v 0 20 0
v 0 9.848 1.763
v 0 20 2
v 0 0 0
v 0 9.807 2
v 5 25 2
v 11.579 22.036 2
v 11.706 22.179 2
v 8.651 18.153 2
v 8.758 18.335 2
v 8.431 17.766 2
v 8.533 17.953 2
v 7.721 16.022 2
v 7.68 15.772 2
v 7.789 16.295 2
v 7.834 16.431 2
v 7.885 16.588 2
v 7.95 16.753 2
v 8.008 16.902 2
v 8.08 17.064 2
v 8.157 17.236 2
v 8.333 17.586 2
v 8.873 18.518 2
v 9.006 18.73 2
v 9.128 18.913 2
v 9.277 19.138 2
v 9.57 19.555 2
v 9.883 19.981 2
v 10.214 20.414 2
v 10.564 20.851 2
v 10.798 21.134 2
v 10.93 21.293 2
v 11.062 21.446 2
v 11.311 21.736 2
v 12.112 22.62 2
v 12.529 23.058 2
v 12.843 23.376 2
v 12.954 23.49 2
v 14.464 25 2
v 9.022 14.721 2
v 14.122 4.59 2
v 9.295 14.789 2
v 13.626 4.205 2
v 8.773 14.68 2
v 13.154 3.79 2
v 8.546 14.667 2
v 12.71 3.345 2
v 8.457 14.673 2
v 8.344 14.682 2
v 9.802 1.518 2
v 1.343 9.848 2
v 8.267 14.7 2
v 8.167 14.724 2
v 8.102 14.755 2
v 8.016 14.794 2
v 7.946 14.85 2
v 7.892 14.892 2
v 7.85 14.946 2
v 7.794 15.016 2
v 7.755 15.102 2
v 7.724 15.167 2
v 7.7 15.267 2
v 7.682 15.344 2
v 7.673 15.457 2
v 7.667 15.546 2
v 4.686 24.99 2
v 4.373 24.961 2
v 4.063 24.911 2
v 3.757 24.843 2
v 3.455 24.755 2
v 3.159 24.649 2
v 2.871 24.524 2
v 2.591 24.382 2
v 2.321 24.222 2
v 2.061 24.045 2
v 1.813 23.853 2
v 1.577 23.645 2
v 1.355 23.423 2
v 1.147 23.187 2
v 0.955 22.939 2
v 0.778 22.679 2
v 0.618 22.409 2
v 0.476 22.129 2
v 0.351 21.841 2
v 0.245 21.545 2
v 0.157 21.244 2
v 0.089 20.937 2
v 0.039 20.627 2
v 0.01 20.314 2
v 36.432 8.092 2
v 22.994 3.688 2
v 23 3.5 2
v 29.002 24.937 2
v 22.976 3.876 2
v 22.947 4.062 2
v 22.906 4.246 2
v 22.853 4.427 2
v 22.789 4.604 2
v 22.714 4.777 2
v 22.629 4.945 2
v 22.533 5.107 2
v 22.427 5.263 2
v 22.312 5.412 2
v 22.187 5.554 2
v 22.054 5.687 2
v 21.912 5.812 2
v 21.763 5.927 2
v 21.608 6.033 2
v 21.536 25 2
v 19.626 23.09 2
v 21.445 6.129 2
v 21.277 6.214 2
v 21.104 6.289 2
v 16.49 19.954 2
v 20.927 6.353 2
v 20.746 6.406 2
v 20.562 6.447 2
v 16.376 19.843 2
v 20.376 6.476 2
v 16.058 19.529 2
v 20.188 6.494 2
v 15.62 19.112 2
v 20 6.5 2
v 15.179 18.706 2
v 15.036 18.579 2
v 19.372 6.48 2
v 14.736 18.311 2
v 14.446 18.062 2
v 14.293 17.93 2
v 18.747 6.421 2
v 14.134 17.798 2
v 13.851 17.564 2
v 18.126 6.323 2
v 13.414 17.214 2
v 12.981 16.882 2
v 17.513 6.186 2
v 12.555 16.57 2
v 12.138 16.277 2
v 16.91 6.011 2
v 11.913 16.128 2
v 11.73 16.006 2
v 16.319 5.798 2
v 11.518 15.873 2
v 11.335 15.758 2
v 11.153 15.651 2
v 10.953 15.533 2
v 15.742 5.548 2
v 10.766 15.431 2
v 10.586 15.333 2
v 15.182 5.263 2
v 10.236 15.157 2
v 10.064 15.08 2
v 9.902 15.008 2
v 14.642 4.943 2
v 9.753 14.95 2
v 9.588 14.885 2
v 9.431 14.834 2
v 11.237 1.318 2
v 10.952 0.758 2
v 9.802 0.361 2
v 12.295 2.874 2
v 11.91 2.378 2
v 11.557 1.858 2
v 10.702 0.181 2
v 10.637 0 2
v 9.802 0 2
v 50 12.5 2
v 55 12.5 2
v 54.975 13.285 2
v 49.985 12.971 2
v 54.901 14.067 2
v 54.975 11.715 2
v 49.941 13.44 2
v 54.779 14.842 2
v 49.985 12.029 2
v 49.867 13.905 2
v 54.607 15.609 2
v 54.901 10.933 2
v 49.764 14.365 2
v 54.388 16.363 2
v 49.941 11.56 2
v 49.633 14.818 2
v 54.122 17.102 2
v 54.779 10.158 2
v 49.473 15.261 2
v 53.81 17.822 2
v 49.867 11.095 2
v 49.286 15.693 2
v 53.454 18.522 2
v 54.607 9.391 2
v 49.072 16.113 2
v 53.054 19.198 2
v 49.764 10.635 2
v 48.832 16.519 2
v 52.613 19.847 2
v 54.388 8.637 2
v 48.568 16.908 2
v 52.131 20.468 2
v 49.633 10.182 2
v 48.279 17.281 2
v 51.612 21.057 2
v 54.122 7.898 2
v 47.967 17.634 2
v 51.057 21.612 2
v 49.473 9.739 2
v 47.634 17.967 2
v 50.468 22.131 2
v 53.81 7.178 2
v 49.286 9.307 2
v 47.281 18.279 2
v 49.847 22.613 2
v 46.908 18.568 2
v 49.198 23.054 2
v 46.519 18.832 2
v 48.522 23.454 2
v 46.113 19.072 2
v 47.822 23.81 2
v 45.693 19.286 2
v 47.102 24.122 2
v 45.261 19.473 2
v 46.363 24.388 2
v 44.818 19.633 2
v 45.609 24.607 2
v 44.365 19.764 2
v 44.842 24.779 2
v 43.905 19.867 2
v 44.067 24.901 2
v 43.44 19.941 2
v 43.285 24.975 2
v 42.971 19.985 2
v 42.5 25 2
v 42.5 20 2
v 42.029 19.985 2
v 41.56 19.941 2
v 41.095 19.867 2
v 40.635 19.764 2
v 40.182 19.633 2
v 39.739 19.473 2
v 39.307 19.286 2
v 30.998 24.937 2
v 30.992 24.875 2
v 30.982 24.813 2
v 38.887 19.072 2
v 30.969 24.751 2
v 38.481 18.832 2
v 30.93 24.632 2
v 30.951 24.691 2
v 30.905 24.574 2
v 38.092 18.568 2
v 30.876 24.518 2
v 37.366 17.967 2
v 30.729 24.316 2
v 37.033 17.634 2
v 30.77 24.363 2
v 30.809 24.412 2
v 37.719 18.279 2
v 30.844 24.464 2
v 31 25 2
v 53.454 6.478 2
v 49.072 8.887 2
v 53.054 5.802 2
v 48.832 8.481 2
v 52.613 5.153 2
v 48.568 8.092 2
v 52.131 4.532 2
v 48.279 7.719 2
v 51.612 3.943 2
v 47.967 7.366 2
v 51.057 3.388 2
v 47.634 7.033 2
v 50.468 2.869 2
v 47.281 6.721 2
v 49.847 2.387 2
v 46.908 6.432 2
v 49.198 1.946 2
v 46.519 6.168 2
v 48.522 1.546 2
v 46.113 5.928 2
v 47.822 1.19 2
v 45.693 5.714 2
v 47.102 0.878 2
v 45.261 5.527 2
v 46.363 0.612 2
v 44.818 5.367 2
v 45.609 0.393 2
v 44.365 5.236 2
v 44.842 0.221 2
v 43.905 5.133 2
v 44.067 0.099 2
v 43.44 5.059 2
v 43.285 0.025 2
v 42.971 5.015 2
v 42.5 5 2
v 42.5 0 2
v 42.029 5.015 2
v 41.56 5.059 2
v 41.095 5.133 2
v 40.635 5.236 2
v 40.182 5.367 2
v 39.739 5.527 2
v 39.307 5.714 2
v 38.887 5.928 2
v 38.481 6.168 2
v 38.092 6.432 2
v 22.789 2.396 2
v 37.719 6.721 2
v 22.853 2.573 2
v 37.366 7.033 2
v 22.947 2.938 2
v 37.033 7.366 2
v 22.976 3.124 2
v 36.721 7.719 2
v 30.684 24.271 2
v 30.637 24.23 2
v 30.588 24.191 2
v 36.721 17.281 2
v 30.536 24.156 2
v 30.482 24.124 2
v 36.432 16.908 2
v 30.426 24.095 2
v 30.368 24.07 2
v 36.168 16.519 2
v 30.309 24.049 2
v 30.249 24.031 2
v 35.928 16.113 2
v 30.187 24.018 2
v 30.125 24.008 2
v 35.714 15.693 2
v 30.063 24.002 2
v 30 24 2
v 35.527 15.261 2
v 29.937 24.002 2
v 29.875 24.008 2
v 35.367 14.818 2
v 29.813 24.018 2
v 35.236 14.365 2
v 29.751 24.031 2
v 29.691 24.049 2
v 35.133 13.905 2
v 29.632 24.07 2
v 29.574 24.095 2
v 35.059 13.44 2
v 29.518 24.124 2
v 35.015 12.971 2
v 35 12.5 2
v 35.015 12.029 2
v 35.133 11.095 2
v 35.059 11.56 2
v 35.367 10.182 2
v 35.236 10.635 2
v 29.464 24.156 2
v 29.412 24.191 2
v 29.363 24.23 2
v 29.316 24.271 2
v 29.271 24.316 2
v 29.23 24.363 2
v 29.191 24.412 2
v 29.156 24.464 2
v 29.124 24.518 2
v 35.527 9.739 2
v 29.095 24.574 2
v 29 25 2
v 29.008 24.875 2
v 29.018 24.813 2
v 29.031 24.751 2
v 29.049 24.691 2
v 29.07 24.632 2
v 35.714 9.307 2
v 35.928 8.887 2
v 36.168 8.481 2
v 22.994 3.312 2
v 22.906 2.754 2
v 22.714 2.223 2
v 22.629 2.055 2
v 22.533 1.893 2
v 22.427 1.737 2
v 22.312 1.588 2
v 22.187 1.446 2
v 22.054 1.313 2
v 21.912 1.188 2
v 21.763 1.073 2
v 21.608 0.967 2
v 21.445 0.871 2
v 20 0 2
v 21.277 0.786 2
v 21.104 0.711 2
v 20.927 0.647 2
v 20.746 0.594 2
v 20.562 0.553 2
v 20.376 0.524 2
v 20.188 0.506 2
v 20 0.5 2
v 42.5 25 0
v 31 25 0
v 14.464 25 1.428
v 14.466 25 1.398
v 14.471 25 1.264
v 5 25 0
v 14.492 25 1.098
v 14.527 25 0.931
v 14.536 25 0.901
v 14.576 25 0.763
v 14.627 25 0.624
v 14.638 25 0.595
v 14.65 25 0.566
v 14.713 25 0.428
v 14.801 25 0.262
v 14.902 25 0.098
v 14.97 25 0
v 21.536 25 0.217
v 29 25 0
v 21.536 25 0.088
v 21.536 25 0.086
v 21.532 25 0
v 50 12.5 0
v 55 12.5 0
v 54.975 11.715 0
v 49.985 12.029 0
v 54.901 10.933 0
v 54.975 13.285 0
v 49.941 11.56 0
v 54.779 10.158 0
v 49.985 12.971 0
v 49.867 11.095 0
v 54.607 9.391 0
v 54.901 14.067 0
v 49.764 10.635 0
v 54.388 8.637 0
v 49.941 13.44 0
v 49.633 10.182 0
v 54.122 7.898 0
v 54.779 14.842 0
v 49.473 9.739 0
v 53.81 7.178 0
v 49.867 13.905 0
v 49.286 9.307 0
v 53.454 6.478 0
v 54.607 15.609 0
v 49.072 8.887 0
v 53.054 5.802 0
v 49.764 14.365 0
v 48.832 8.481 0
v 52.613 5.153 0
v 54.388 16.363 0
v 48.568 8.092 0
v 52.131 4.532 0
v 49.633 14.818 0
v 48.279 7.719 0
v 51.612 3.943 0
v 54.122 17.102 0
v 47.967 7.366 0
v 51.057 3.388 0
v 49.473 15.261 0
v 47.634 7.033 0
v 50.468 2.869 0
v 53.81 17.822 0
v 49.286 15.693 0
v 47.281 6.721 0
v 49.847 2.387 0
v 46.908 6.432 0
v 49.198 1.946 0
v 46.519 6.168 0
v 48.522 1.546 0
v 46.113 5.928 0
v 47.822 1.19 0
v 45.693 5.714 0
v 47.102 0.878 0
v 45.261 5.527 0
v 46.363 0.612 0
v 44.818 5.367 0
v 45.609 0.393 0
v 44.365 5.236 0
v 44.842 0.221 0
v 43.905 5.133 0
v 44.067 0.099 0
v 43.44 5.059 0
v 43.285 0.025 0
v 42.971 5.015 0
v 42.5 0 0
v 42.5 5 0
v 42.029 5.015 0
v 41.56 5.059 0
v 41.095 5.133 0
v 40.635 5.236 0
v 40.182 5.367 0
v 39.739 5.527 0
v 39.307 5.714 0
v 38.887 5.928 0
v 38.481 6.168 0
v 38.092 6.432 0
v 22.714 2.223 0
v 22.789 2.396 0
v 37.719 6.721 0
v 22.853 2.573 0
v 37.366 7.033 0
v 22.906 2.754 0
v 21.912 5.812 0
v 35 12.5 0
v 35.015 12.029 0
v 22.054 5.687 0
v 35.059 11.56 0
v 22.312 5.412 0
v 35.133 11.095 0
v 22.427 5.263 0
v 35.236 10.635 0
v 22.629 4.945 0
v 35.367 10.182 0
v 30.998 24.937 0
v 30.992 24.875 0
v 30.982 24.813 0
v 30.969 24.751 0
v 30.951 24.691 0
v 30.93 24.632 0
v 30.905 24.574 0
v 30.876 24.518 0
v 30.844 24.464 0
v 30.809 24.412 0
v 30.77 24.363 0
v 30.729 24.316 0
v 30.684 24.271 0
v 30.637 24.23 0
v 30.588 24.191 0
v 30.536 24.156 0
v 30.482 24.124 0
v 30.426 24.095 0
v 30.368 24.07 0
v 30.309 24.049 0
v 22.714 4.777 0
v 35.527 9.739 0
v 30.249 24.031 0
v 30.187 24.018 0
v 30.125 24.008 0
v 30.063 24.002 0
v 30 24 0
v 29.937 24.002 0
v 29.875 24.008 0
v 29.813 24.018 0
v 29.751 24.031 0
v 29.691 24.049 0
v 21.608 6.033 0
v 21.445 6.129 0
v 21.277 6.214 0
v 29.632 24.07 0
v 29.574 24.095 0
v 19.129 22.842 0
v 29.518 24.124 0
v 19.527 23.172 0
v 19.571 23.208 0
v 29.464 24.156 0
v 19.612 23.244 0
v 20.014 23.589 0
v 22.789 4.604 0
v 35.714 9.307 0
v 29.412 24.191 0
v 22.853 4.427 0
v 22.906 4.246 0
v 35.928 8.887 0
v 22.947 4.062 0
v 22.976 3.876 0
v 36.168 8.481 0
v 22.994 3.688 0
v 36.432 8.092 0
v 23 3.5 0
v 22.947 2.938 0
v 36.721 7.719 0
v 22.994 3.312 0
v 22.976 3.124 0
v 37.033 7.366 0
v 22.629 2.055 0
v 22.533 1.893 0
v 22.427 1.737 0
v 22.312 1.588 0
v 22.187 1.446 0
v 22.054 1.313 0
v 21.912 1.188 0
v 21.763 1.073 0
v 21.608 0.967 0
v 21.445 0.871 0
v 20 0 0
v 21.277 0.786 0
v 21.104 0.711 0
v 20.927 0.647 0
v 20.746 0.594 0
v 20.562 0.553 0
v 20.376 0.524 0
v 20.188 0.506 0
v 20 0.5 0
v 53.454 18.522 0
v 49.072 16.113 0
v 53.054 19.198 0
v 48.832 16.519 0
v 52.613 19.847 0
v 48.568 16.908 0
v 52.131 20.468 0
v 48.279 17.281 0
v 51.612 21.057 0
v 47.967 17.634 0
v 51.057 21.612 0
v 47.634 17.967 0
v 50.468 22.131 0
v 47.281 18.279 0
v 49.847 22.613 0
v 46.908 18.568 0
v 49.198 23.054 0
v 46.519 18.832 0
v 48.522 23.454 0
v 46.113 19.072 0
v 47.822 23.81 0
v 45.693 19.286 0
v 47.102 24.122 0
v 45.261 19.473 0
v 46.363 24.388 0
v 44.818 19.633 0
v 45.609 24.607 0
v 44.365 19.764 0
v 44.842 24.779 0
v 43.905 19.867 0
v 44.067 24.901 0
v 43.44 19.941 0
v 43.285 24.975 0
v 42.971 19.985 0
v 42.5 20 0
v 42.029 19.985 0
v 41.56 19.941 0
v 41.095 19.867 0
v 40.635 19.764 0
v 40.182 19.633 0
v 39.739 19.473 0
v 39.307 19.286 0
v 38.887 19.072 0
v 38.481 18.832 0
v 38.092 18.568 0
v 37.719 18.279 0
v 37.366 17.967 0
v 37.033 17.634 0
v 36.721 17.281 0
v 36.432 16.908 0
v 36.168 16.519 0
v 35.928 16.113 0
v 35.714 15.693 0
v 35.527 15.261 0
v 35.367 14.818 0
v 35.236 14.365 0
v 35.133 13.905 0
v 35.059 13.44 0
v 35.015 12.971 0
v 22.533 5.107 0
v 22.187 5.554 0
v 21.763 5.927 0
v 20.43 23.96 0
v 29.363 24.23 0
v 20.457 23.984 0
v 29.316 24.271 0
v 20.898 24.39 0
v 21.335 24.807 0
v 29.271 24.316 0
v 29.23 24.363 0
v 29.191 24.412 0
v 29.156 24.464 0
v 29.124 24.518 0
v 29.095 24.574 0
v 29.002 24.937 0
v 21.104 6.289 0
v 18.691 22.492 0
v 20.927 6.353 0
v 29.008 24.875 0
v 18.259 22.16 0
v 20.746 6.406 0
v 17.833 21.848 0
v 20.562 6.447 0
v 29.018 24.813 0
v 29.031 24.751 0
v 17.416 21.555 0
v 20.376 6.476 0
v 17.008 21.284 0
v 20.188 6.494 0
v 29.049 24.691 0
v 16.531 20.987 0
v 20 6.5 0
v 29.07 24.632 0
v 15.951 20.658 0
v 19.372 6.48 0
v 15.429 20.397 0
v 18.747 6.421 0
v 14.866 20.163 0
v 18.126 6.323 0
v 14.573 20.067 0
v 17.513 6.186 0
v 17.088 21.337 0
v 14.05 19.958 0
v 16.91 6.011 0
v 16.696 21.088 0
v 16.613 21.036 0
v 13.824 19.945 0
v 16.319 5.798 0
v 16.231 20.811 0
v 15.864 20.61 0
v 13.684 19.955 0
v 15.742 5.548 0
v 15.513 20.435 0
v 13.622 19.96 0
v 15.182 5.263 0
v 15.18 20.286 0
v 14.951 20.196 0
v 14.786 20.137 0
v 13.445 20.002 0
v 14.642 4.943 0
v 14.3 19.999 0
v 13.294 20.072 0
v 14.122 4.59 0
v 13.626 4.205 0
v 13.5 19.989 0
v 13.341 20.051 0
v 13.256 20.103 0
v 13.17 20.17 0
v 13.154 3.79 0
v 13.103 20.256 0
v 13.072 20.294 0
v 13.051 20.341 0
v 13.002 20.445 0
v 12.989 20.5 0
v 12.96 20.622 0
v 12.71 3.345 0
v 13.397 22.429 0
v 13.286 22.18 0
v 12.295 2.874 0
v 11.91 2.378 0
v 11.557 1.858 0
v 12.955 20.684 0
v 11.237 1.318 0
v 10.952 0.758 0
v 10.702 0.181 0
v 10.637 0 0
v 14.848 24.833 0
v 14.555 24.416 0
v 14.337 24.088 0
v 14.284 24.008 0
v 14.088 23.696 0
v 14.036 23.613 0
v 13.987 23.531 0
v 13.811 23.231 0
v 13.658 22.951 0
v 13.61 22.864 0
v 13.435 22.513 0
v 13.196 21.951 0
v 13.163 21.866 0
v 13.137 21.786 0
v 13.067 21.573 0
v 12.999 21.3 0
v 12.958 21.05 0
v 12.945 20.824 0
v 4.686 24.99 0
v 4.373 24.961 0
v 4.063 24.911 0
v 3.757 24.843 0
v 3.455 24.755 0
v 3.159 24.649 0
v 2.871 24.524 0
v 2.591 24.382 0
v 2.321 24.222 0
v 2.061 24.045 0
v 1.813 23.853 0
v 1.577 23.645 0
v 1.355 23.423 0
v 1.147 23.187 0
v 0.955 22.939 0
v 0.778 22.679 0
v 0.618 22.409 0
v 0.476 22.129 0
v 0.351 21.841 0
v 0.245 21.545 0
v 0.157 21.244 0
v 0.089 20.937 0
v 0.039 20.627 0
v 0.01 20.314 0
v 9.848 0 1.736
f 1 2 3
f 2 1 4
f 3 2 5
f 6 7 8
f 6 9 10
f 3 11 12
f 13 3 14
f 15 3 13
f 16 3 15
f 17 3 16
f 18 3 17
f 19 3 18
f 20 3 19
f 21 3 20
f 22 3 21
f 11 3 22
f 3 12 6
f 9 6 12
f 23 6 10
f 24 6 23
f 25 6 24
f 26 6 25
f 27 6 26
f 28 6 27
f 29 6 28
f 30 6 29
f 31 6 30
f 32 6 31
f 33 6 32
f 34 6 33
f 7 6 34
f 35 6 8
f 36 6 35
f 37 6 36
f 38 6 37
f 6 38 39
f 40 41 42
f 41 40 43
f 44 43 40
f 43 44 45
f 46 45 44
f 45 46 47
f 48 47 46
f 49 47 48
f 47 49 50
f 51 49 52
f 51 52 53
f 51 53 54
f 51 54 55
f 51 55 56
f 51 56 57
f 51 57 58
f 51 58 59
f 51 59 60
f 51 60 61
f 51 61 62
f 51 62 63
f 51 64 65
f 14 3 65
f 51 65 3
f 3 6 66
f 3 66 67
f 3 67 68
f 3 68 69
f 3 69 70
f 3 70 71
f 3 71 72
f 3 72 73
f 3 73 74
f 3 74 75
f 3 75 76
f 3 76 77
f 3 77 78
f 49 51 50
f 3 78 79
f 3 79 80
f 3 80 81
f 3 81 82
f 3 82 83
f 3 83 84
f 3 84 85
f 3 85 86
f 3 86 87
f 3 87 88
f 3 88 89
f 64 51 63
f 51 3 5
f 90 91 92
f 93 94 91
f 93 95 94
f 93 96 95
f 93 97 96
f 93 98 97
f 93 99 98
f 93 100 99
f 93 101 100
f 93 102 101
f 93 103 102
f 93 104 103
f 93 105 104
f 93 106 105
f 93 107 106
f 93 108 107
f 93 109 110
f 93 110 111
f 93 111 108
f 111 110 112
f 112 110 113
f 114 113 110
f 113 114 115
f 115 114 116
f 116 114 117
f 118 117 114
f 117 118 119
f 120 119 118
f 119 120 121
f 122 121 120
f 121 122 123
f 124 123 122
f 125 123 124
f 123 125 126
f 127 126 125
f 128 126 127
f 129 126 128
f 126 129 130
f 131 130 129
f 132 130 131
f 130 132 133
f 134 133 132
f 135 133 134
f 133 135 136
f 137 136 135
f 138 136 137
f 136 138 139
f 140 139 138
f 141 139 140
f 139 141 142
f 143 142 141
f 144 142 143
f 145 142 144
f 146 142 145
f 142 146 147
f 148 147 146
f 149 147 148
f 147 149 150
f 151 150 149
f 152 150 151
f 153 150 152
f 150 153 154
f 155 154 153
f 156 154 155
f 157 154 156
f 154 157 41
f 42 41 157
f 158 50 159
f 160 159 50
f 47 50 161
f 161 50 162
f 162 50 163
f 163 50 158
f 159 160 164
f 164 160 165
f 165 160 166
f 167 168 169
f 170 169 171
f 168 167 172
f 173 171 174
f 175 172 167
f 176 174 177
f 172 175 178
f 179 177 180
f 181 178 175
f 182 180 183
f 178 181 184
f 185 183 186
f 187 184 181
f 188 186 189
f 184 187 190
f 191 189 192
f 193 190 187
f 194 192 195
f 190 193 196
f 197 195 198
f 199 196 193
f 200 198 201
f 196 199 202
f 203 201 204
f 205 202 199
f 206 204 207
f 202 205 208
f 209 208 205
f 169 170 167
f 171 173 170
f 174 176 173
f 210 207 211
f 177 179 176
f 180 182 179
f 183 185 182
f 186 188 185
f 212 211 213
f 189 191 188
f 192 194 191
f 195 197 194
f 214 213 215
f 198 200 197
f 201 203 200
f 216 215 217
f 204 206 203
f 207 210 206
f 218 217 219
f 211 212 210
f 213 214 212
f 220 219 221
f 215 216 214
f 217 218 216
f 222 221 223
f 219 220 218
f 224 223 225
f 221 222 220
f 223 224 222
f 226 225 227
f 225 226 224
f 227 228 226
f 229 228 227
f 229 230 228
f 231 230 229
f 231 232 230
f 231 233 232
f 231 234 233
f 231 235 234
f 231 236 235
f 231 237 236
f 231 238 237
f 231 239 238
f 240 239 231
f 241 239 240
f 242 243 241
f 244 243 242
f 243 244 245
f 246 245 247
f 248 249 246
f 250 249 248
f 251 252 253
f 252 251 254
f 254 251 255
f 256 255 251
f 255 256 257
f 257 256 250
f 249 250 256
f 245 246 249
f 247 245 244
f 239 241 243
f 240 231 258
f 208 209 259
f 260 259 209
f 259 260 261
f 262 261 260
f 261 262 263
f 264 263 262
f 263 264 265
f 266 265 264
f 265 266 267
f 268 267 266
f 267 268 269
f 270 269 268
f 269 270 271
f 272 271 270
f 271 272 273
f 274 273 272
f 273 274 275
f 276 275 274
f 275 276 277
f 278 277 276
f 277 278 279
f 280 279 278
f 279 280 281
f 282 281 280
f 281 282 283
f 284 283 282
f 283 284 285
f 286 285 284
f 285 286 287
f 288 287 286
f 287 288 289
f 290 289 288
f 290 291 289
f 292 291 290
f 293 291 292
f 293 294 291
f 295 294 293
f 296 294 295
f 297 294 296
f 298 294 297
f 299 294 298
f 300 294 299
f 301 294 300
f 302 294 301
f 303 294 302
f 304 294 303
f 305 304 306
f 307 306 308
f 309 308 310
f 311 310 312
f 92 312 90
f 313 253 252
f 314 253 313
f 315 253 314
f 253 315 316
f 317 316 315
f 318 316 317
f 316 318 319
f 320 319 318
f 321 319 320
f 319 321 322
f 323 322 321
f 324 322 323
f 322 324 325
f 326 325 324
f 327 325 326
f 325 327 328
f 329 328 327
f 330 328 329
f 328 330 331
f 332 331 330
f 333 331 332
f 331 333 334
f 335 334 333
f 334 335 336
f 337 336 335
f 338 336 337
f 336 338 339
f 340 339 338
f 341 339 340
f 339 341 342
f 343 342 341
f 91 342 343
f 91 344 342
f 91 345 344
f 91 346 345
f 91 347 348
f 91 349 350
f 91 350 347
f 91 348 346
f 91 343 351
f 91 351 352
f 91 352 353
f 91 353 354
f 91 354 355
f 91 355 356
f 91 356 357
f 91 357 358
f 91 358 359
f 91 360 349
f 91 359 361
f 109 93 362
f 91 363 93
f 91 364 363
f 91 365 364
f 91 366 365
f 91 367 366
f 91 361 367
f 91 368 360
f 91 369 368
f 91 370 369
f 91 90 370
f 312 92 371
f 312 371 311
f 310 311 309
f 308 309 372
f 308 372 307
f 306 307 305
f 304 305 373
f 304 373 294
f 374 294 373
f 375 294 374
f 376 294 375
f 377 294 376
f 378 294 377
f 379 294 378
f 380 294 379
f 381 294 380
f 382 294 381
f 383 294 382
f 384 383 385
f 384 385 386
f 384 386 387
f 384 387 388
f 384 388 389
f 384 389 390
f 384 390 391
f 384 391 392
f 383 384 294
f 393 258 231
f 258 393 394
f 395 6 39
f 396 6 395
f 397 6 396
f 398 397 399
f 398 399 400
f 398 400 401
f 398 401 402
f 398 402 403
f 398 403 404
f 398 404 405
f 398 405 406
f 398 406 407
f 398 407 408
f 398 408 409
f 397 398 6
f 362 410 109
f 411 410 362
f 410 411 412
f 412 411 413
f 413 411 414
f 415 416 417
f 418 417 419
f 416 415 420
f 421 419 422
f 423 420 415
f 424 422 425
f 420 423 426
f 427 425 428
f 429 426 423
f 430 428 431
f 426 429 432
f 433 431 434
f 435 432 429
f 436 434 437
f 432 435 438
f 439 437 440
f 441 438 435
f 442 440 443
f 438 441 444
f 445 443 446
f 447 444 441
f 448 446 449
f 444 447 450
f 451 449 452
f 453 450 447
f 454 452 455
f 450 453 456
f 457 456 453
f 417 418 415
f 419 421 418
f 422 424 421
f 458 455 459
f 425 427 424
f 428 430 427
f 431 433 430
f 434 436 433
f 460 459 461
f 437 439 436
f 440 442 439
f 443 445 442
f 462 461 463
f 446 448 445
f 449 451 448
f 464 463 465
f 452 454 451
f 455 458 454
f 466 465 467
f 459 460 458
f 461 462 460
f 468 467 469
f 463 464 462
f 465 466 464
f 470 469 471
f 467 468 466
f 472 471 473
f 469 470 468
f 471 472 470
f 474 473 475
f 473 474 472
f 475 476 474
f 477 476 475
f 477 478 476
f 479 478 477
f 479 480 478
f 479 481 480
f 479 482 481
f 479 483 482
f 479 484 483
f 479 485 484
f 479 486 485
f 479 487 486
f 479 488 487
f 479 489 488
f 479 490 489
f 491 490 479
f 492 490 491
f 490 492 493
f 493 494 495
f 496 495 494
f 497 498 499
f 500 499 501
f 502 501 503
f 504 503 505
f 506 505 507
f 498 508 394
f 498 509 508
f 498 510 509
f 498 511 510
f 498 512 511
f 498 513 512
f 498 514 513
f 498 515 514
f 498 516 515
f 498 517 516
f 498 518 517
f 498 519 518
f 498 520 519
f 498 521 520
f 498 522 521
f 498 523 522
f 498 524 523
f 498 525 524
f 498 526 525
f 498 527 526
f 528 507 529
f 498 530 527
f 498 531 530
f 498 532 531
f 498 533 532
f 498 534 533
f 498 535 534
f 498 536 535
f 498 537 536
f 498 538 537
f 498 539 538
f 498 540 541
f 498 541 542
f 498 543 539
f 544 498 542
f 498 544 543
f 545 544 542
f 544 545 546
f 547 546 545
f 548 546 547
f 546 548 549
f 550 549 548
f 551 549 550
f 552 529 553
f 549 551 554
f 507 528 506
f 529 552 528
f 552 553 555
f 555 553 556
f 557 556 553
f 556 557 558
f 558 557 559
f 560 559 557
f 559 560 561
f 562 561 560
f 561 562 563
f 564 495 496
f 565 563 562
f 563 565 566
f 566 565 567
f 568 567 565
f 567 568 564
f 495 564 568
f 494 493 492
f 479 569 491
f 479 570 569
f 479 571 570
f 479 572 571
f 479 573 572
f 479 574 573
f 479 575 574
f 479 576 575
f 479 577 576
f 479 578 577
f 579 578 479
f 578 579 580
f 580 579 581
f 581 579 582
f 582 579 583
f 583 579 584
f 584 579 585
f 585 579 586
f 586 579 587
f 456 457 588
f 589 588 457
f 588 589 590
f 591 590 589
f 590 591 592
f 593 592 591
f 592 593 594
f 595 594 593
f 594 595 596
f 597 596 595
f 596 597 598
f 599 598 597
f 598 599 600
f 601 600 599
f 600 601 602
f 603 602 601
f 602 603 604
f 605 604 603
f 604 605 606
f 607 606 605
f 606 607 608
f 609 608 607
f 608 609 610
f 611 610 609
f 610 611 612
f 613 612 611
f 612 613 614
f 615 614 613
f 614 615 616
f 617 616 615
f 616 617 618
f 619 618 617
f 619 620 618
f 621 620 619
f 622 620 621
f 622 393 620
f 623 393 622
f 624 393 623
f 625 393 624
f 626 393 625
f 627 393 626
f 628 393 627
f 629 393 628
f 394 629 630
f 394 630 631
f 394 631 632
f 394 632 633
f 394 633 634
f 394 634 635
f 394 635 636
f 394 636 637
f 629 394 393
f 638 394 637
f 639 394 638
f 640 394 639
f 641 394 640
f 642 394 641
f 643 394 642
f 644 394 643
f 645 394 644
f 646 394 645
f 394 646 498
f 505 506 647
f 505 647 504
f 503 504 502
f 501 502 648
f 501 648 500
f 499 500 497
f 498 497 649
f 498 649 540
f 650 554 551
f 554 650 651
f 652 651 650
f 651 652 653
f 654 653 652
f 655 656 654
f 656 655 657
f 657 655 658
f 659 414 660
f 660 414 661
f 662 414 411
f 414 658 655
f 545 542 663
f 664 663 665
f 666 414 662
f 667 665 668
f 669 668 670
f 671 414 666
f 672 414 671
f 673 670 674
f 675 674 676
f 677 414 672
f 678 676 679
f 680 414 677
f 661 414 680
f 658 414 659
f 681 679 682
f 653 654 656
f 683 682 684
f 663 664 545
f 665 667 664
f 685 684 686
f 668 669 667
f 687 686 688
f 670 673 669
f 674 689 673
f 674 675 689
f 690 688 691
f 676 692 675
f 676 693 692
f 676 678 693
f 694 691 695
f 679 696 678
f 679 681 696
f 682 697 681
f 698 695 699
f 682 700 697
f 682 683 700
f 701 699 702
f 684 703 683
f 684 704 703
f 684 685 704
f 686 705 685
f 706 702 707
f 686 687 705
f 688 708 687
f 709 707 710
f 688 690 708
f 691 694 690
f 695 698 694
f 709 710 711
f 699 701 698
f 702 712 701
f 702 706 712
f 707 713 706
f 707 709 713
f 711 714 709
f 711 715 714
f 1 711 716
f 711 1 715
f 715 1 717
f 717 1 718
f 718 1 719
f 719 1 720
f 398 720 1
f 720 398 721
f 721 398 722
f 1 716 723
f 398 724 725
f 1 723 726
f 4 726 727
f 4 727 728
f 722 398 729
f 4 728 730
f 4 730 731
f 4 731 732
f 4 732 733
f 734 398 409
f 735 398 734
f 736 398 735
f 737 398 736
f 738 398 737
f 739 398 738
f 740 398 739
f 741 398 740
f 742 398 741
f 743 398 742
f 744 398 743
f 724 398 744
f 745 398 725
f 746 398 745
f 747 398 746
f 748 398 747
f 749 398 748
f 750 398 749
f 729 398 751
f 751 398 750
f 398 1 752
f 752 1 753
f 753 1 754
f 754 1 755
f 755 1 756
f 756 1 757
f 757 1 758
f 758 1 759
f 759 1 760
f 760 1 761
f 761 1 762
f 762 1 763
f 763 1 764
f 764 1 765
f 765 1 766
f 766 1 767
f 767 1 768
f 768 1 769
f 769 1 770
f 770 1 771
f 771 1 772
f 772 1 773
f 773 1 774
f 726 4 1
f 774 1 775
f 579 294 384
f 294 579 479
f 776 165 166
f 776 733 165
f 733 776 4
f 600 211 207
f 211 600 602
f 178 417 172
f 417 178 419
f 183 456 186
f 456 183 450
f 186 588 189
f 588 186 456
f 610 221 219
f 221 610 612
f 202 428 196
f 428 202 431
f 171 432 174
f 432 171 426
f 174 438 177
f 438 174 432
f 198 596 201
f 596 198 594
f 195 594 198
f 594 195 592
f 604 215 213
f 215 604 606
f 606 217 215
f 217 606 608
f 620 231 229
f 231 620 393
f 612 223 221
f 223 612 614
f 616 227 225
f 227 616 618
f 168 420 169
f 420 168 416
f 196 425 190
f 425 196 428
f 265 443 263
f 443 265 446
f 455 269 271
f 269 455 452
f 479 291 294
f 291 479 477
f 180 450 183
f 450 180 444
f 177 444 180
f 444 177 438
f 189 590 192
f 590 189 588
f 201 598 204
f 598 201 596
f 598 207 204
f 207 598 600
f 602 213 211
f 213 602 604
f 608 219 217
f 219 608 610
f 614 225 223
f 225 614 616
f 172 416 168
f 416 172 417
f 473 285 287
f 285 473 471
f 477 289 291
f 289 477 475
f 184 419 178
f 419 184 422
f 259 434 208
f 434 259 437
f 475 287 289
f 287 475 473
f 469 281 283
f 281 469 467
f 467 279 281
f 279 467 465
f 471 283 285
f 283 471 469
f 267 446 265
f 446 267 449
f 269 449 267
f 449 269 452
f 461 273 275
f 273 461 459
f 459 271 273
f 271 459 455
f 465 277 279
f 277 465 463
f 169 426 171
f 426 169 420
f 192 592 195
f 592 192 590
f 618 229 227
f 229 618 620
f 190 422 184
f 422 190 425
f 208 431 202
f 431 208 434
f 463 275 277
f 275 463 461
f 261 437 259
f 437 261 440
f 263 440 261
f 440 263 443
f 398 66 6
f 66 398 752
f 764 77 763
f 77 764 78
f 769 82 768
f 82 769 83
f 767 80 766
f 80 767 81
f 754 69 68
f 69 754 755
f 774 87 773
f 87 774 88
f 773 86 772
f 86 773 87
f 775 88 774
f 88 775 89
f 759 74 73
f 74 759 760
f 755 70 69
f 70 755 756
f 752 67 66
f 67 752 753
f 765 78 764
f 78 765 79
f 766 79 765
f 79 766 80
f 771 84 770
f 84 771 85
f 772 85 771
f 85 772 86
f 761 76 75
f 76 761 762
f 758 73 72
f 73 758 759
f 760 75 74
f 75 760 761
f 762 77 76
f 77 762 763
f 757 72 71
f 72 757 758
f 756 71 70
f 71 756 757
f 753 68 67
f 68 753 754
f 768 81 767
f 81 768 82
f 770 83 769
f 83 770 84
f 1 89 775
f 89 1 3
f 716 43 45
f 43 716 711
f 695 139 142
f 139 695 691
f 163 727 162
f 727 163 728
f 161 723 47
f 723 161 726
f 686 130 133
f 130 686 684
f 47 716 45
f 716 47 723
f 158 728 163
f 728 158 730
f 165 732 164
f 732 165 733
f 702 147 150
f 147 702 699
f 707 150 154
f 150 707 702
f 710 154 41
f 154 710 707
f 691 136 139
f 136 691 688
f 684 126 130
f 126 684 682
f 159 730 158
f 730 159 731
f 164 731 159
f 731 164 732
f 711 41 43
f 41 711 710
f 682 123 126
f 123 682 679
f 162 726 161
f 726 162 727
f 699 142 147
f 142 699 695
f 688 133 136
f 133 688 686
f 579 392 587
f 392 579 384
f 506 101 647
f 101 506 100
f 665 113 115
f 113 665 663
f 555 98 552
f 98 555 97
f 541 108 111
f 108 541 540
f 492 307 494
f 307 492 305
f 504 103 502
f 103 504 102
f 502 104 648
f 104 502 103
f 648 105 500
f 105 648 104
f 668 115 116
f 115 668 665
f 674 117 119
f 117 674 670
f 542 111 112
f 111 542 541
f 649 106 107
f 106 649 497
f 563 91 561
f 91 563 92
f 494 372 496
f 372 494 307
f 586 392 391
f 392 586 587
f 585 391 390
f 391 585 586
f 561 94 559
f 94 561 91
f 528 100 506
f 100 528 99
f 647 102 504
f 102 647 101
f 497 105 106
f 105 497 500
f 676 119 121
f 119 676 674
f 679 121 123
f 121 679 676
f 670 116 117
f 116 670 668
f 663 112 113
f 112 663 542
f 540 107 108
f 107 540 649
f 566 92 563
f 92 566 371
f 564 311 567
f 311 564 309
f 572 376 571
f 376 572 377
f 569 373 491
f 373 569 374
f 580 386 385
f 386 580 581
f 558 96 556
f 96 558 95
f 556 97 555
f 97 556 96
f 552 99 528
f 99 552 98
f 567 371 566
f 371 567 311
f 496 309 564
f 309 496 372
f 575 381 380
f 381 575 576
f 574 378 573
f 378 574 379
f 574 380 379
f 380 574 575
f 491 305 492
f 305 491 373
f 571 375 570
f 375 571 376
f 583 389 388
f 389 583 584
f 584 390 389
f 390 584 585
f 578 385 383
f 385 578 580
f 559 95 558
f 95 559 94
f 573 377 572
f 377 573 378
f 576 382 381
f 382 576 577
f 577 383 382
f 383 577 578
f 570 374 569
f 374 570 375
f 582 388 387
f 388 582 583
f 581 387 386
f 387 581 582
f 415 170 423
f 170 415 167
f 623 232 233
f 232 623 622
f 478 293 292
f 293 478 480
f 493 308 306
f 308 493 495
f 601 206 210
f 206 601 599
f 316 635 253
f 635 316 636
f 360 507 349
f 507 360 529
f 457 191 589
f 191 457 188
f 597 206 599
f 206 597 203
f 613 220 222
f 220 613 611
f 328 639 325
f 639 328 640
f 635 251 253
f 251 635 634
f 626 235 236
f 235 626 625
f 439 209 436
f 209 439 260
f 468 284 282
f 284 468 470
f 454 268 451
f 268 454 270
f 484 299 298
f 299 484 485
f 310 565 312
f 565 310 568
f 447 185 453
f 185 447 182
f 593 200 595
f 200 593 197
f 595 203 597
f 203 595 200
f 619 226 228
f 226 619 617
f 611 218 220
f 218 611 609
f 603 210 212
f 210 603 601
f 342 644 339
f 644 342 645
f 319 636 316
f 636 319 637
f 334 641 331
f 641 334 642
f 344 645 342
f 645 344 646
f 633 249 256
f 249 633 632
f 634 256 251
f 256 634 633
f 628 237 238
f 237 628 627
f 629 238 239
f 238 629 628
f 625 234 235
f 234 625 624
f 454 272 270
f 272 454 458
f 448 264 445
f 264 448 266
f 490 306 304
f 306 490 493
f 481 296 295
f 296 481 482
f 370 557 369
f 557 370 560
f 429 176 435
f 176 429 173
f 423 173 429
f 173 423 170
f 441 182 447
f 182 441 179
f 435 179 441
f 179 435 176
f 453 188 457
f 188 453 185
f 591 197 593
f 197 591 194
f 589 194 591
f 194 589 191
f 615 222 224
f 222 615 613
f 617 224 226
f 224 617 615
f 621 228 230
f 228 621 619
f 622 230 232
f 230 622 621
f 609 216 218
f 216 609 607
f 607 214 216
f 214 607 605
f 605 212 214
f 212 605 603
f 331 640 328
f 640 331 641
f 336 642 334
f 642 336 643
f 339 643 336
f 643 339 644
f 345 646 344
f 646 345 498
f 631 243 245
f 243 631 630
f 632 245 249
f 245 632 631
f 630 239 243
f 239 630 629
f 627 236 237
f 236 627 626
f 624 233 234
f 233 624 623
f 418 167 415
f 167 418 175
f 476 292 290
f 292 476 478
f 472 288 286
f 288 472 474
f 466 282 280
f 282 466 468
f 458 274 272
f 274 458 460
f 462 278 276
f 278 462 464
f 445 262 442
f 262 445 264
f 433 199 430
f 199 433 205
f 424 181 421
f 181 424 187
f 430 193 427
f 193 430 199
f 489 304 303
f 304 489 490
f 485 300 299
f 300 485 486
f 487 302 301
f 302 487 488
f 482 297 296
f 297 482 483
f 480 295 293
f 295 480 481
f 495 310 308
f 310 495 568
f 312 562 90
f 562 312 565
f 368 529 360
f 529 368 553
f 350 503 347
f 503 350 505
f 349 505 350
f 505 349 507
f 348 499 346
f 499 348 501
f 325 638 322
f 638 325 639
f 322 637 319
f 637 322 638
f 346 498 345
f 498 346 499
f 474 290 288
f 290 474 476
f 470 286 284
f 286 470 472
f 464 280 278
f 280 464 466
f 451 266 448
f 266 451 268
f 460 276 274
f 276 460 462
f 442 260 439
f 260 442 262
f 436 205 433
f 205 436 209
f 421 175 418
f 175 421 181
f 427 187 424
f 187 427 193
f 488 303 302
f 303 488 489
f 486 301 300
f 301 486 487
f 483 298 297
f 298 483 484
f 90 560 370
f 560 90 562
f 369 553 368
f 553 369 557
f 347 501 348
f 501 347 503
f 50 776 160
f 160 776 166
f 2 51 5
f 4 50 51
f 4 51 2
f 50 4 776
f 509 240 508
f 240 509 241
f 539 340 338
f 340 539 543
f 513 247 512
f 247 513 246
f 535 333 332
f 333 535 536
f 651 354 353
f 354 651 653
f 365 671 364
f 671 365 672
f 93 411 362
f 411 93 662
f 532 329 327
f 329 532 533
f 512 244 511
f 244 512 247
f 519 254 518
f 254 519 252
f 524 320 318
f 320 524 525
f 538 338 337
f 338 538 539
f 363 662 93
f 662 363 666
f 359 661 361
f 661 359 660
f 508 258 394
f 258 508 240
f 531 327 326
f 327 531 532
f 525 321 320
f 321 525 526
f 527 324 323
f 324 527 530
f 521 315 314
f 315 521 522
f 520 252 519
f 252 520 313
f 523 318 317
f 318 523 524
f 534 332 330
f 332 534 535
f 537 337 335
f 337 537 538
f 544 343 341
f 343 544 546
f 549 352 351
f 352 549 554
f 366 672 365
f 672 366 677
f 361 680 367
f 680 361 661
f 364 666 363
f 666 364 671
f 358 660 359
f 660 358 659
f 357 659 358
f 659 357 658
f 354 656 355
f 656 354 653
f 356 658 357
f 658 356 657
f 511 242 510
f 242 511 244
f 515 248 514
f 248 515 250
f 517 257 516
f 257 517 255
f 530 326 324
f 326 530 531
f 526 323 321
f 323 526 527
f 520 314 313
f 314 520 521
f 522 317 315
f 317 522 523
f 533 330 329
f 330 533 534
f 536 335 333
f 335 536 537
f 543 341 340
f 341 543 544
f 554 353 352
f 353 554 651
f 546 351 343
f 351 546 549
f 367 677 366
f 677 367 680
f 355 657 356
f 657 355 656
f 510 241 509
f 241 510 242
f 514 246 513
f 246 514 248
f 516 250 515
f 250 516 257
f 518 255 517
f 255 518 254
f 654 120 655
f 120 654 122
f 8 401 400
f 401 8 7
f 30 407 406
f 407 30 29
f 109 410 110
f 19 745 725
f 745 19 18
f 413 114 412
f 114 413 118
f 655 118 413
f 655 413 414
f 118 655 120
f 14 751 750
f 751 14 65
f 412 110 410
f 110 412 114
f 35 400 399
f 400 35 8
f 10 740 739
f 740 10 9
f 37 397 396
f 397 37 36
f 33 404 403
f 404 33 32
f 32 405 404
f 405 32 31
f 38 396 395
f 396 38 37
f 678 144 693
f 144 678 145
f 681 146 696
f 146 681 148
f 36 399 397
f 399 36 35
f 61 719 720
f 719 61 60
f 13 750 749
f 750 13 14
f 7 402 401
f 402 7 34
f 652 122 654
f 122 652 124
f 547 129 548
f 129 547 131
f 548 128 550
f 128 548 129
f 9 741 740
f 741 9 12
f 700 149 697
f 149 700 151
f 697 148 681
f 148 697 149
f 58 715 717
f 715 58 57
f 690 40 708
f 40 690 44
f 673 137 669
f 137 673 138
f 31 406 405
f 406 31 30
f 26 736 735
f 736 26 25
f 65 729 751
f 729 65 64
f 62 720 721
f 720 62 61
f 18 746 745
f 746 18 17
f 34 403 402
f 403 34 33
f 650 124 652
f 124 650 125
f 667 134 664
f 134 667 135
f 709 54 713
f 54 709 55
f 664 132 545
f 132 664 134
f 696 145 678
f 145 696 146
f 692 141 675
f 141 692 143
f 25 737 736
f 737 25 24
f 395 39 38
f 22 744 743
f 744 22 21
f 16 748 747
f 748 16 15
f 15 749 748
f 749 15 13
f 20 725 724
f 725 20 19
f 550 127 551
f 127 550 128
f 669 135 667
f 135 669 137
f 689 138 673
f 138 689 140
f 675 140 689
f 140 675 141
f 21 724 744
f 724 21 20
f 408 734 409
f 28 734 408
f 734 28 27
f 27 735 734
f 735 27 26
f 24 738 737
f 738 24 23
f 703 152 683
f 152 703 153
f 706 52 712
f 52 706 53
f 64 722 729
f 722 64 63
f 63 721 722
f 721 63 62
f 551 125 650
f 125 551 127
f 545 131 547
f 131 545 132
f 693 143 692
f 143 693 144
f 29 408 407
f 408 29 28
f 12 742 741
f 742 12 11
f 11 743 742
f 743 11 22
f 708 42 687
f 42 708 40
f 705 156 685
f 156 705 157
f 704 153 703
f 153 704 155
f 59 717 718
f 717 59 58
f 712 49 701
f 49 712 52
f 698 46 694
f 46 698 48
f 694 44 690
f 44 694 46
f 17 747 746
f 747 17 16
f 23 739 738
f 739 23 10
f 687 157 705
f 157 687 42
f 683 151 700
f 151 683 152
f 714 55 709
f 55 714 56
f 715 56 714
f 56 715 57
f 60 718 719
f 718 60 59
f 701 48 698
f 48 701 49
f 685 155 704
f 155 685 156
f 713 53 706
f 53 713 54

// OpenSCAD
fn=100;

module rawBody() {
	cube([42.5,25,2]);
	translate([42.5,12.5,0]) cylinder(d=25, h=2, $fn=fn);
	}


module fullBody() {
	difference() {
		rawBody();
		// main hole
		translate([42.5,12.5,0]) cylinder(d=15, h=3, $fn=fn);	
		// rounded edge
		translate([-5,20,0]) difference() {
			cube([10,10,3]);
			translate([10,0,0]) cylinder(d=10, h=3, $fn=fn);
		}
		// box opener
		translate([]) rotate([10,-10,0]) translate([-5,0,0])cube([20,10,5]);
		
		//wire stripper and bender
		translate([30,25,0]) cylinder(d=2, h=3, $fn=fn);
		// belt cutter
		translate([20,27,0]) rotate([75,0,-45]) {
			hull() {
				cylinder(h=30, d=5, $fn=fn);
				translate([0,10,0]) cylinder(h=30, d=5, $fn=fn);
				}
			}
		//cap lifter
		translate([10,3.5,0]) {
			union() {
				translate([10,0,0]) cylinder(d=6, h=3, $fn=fn);
				translate([10,-7,0]) difference() {
					cylinder(d=20, h=3, $fn=fn);
					translate([0,-15,0]) cube([15,30,3]);
					}
				}
			}
			
			
			
	}
}
	
	
fullBody();
		
